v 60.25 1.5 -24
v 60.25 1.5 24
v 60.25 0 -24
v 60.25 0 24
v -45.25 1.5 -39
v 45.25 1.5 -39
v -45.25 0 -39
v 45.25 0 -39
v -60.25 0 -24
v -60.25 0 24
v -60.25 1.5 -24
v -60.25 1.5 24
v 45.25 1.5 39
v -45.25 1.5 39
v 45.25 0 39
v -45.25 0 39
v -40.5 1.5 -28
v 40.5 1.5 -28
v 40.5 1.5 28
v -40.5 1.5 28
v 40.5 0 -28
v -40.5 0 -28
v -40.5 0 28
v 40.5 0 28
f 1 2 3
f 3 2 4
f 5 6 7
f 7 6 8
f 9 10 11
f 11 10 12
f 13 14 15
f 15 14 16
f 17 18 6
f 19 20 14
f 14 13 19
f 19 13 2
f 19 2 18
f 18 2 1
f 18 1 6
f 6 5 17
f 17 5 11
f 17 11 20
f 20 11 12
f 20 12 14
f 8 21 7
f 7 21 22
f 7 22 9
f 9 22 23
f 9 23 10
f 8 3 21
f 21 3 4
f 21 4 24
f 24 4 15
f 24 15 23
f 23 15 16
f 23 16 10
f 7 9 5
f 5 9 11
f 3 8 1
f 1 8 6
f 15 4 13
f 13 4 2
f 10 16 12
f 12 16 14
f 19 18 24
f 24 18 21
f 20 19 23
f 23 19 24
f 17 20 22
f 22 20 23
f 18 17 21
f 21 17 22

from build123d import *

# Parameters (mm, degrees)
SKETCH1_W           = 120.5
SKETCH1_H           = 78
BOSS_EXTRUDE1_DEPTH = 1.5
CHAMFER1_SIZE       = 15
SKETCH2_W           = 81
SKETCH2_H           = 56
CUT_EXTRUDE1_DEPTH  = 2


with BuildPart() as part:
    # Sketch1 → Boss-Extrude1 (new body)
    with BuildSketch(Plane(origin=(0, 0, 0), x_dir=(1, 0, 0), z_dir=(0, 1, 0))):
        Rectangle(SKETCH1_W, SKETCH1_H)
    extrude(amount=BOSS_EXTRUDE1_DEPTH)

    # Chamfer1
    chamfer1_edges = [part.edges().sort_by_distance(p)[0] for p in [
        (60.25, 0.75, 39),
        (-60.25, 0.75, 39),
        (-60.25, 0.75, -39),
        (60.25, 0.75, -39),
    ]]
    chamfer(chamfer1_edges, length=CHAMFER1_SIZE)

    # Sketch2 → Cut-Extrude1 (cut)
    with BuildSketch(Plane(origin=(0, 1.5, 0), x_dir=(1, 0, 0), z_dir=(0, 1, 0))):
        Rectangle(SKETCH2_W, SKETCH2_H)
    extrude(amount=-CUT_EXTRUDE1_DEPTH, mode=Mode.SUBTRACT)


solid = part.part
